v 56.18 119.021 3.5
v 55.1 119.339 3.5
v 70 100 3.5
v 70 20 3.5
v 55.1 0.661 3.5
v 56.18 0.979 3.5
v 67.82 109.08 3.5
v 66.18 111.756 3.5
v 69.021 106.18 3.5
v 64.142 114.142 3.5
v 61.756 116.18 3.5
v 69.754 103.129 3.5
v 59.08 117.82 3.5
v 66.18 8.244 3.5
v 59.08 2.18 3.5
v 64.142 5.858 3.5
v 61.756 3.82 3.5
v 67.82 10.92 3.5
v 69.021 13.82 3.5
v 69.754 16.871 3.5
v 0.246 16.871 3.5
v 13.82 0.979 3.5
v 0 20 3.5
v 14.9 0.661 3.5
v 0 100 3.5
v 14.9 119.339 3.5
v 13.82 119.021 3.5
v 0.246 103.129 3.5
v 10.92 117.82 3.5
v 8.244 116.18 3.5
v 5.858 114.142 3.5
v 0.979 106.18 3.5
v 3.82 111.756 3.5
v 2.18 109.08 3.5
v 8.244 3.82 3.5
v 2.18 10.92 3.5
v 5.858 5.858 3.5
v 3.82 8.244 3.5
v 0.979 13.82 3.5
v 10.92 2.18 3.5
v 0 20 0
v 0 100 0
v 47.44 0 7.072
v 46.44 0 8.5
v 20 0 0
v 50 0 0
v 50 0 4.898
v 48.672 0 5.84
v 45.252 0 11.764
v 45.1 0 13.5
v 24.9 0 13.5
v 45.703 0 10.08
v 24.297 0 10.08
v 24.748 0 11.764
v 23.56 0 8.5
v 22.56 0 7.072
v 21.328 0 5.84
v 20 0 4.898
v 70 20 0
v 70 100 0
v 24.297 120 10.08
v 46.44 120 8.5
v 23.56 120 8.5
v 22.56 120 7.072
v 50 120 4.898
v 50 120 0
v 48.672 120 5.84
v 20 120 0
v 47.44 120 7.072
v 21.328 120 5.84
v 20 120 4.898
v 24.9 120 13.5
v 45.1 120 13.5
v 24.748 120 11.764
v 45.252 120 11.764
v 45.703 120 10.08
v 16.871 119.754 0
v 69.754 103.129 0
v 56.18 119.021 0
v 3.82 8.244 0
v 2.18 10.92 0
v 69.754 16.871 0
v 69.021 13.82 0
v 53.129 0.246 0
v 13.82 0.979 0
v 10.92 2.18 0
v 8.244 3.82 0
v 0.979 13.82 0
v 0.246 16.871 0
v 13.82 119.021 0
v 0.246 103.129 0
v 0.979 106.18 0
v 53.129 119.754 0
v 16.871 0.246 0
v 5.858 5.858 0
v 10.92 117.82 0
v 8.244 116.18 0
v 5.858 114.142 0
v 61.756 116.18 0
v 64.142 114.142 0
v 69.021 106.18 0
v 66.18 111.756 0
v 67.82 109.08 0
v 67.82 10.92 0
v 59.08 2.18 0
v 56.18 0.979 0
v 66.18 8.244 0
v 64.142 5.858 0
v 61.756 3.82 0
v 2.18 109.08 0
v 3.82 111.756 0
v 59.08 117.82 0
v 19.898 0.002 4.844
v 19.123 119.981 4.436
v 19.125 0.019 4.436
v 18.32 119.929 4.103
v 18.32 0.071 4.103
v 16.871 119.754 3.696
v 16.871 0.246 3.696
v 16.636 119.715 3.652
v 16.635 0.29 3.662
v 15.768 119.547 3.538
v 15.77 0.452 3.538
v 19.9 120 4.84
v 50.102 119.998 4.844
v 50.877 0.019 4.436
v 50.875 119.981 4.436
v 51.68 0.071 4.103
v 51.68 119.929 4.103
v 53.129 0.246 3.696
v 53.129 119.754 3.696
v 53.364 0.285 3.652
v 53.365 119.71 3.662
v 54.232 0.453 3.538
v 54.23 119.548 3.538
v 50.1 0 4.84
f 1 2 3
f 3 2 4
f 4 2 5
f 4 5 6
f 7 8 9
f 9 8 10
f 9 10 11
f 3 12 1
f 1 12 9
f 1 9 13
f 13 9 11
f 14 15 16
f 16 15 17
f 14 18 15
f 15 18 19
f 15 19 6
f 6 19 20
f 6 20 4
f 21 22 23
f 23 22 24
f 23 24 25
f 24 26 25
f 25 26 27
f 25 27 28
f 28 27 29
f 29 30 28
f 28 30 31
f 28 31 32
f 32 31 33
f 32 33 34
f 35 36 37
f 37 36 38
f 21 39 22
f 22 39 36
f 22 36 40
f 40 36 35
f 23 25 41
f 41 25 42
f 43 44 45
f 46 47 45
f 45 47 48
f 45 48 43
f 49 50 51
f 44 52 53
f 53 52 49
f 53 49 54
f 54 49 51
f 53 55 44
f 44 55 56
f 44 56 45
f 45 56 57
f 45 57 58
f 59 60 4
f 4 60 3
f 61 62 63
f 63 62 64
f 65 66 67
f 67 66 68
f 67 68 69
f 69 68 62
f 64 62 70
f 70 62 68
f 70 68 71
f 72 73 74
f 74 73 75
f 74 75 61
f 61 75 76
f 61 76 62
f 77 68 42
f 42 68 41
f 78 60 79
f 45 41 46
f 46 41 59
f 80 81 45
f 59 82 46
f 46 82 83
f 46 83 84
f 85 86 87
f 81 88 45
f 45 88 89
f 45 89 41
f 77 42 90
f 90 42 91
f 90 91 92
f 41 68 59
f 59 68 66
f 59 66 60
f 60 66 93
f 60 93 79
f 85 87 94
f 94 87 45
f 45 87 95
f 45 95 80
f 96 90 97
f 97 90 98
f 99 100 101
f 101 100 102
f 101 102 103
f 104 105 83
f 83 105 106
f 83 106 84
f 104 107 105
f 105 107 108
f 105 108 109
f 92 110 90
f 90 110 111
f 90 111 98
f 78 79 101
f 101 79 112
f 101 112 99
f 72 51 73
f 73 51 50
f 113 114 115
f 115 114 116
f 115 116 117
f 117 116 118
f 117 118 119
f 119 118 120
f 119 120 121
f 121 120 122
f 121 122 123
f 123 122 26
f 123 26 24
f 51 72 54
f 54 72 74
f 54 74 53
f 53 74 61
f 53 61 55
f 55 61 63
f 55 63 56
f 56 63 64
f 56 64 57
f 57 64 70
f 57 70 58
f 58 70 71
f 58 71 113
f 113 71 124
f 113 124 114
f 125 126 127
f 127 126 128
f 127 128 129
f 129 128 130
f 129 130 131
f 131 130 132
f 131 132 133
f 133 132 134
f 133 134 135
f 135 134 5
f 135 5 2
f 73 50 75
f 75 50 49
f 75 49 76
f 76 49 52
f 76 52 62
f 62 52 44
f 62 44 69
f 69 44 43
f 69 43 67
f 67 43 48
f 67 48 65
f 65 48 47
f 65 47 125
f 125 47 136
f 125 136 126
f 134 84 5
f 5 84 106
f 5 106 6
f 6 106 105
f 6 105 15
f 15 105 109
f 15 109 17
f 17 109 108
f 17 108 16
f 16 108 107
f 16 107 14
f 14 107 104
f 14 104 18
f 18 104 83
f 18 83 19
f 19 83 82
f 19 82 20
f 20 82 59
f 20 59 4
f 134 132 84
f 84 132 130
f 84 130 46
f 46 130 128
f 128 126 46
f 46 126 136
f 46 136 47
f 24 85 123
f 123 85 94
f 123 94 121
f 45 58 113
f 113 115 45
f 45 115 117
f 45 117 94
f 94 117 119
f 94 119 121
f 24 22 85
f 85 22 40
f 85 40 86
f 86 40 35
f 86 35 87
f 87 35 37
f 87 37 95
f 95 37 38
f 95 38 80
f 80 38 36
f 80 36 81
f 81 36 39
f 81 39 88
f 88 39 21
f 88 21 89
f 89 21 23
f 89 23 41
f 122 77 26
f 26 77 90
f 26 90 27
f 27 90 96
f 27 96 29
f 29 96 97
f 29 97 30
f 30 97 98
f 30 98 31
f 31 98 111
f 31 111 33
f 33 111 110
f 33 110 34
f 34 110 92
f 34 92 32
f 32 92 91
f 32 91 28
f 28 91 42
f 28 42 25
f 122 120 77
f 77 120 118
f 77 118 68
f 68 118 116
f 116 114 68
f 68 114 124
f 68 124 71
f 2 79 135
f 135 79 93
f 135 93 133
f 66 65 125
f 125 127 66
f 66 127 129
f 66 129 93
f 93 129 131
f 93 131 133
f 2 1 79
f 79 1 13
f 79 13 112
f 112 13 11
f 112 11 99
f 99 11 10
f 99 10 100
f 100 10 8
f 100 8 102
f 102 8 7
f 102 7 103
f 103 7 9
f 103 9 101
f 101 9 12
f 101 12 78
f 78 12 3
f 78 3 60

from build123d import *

# Parameters (mm, degrees)
SKETCH_1_W      = 70
SKETCH_1_H      = 120
EXTRUDE_1_DEPTH = 3.5
SKETCH_2_W      = 20.2
SKETCH_2_H      = 120
EXTRUDE_2_DEPTH = 10
FILLET_1_R      = 10
FILLET_2_R      = 20


with BuildPart() as part:
    # ｽｹｯﾁ1 → ﾎﾞｽ - 押し出し1 (new body)
    with BuildSketch(Plane.XY):
        with Locations((35, 60)):
            Rectangle(SKETCH_1_W, SKETCH_1_H)
    extrude(amount=EXTRUDE_1_DEPTH)

    # ｽｹｯﾁ2 → ﾎﾞｽ - 押し出し2 (add)
    with BuildSketch(Plane.XY.offset(3.5)):
        with Locations((35, 60)):
            Rectangle(SKETCH_2_W, SKETCH_2_H)
    extrude(amount=EXTRUDE_2_DEPTH)

    # ﾌｨﾚｯﾄ1
    fillet_1_edges = [part.edges().sort_by_distance(p)[0] for p in [
        (24.9, 60, 3.5),
        (45.1, 60, 3.5),
    ]]
    fillet(fillet_1_edges, radius=FILLET_1_R - 0.0001)  # a hair under: the kernel refuses the full size

    # ﾌｨﾚｯﾄ2
    fillet_2_edges = [part.edges().sort_by_distance(p)[0] for p in [
        (70, 120, 1.75),
        (70, 0, 1.75),
        (0, 0, 1.75),
        (0, 120, 1.75),
    ]]
    fillet(fillet_2_edges, radius=FILLET_2_R)


solid = part.part
